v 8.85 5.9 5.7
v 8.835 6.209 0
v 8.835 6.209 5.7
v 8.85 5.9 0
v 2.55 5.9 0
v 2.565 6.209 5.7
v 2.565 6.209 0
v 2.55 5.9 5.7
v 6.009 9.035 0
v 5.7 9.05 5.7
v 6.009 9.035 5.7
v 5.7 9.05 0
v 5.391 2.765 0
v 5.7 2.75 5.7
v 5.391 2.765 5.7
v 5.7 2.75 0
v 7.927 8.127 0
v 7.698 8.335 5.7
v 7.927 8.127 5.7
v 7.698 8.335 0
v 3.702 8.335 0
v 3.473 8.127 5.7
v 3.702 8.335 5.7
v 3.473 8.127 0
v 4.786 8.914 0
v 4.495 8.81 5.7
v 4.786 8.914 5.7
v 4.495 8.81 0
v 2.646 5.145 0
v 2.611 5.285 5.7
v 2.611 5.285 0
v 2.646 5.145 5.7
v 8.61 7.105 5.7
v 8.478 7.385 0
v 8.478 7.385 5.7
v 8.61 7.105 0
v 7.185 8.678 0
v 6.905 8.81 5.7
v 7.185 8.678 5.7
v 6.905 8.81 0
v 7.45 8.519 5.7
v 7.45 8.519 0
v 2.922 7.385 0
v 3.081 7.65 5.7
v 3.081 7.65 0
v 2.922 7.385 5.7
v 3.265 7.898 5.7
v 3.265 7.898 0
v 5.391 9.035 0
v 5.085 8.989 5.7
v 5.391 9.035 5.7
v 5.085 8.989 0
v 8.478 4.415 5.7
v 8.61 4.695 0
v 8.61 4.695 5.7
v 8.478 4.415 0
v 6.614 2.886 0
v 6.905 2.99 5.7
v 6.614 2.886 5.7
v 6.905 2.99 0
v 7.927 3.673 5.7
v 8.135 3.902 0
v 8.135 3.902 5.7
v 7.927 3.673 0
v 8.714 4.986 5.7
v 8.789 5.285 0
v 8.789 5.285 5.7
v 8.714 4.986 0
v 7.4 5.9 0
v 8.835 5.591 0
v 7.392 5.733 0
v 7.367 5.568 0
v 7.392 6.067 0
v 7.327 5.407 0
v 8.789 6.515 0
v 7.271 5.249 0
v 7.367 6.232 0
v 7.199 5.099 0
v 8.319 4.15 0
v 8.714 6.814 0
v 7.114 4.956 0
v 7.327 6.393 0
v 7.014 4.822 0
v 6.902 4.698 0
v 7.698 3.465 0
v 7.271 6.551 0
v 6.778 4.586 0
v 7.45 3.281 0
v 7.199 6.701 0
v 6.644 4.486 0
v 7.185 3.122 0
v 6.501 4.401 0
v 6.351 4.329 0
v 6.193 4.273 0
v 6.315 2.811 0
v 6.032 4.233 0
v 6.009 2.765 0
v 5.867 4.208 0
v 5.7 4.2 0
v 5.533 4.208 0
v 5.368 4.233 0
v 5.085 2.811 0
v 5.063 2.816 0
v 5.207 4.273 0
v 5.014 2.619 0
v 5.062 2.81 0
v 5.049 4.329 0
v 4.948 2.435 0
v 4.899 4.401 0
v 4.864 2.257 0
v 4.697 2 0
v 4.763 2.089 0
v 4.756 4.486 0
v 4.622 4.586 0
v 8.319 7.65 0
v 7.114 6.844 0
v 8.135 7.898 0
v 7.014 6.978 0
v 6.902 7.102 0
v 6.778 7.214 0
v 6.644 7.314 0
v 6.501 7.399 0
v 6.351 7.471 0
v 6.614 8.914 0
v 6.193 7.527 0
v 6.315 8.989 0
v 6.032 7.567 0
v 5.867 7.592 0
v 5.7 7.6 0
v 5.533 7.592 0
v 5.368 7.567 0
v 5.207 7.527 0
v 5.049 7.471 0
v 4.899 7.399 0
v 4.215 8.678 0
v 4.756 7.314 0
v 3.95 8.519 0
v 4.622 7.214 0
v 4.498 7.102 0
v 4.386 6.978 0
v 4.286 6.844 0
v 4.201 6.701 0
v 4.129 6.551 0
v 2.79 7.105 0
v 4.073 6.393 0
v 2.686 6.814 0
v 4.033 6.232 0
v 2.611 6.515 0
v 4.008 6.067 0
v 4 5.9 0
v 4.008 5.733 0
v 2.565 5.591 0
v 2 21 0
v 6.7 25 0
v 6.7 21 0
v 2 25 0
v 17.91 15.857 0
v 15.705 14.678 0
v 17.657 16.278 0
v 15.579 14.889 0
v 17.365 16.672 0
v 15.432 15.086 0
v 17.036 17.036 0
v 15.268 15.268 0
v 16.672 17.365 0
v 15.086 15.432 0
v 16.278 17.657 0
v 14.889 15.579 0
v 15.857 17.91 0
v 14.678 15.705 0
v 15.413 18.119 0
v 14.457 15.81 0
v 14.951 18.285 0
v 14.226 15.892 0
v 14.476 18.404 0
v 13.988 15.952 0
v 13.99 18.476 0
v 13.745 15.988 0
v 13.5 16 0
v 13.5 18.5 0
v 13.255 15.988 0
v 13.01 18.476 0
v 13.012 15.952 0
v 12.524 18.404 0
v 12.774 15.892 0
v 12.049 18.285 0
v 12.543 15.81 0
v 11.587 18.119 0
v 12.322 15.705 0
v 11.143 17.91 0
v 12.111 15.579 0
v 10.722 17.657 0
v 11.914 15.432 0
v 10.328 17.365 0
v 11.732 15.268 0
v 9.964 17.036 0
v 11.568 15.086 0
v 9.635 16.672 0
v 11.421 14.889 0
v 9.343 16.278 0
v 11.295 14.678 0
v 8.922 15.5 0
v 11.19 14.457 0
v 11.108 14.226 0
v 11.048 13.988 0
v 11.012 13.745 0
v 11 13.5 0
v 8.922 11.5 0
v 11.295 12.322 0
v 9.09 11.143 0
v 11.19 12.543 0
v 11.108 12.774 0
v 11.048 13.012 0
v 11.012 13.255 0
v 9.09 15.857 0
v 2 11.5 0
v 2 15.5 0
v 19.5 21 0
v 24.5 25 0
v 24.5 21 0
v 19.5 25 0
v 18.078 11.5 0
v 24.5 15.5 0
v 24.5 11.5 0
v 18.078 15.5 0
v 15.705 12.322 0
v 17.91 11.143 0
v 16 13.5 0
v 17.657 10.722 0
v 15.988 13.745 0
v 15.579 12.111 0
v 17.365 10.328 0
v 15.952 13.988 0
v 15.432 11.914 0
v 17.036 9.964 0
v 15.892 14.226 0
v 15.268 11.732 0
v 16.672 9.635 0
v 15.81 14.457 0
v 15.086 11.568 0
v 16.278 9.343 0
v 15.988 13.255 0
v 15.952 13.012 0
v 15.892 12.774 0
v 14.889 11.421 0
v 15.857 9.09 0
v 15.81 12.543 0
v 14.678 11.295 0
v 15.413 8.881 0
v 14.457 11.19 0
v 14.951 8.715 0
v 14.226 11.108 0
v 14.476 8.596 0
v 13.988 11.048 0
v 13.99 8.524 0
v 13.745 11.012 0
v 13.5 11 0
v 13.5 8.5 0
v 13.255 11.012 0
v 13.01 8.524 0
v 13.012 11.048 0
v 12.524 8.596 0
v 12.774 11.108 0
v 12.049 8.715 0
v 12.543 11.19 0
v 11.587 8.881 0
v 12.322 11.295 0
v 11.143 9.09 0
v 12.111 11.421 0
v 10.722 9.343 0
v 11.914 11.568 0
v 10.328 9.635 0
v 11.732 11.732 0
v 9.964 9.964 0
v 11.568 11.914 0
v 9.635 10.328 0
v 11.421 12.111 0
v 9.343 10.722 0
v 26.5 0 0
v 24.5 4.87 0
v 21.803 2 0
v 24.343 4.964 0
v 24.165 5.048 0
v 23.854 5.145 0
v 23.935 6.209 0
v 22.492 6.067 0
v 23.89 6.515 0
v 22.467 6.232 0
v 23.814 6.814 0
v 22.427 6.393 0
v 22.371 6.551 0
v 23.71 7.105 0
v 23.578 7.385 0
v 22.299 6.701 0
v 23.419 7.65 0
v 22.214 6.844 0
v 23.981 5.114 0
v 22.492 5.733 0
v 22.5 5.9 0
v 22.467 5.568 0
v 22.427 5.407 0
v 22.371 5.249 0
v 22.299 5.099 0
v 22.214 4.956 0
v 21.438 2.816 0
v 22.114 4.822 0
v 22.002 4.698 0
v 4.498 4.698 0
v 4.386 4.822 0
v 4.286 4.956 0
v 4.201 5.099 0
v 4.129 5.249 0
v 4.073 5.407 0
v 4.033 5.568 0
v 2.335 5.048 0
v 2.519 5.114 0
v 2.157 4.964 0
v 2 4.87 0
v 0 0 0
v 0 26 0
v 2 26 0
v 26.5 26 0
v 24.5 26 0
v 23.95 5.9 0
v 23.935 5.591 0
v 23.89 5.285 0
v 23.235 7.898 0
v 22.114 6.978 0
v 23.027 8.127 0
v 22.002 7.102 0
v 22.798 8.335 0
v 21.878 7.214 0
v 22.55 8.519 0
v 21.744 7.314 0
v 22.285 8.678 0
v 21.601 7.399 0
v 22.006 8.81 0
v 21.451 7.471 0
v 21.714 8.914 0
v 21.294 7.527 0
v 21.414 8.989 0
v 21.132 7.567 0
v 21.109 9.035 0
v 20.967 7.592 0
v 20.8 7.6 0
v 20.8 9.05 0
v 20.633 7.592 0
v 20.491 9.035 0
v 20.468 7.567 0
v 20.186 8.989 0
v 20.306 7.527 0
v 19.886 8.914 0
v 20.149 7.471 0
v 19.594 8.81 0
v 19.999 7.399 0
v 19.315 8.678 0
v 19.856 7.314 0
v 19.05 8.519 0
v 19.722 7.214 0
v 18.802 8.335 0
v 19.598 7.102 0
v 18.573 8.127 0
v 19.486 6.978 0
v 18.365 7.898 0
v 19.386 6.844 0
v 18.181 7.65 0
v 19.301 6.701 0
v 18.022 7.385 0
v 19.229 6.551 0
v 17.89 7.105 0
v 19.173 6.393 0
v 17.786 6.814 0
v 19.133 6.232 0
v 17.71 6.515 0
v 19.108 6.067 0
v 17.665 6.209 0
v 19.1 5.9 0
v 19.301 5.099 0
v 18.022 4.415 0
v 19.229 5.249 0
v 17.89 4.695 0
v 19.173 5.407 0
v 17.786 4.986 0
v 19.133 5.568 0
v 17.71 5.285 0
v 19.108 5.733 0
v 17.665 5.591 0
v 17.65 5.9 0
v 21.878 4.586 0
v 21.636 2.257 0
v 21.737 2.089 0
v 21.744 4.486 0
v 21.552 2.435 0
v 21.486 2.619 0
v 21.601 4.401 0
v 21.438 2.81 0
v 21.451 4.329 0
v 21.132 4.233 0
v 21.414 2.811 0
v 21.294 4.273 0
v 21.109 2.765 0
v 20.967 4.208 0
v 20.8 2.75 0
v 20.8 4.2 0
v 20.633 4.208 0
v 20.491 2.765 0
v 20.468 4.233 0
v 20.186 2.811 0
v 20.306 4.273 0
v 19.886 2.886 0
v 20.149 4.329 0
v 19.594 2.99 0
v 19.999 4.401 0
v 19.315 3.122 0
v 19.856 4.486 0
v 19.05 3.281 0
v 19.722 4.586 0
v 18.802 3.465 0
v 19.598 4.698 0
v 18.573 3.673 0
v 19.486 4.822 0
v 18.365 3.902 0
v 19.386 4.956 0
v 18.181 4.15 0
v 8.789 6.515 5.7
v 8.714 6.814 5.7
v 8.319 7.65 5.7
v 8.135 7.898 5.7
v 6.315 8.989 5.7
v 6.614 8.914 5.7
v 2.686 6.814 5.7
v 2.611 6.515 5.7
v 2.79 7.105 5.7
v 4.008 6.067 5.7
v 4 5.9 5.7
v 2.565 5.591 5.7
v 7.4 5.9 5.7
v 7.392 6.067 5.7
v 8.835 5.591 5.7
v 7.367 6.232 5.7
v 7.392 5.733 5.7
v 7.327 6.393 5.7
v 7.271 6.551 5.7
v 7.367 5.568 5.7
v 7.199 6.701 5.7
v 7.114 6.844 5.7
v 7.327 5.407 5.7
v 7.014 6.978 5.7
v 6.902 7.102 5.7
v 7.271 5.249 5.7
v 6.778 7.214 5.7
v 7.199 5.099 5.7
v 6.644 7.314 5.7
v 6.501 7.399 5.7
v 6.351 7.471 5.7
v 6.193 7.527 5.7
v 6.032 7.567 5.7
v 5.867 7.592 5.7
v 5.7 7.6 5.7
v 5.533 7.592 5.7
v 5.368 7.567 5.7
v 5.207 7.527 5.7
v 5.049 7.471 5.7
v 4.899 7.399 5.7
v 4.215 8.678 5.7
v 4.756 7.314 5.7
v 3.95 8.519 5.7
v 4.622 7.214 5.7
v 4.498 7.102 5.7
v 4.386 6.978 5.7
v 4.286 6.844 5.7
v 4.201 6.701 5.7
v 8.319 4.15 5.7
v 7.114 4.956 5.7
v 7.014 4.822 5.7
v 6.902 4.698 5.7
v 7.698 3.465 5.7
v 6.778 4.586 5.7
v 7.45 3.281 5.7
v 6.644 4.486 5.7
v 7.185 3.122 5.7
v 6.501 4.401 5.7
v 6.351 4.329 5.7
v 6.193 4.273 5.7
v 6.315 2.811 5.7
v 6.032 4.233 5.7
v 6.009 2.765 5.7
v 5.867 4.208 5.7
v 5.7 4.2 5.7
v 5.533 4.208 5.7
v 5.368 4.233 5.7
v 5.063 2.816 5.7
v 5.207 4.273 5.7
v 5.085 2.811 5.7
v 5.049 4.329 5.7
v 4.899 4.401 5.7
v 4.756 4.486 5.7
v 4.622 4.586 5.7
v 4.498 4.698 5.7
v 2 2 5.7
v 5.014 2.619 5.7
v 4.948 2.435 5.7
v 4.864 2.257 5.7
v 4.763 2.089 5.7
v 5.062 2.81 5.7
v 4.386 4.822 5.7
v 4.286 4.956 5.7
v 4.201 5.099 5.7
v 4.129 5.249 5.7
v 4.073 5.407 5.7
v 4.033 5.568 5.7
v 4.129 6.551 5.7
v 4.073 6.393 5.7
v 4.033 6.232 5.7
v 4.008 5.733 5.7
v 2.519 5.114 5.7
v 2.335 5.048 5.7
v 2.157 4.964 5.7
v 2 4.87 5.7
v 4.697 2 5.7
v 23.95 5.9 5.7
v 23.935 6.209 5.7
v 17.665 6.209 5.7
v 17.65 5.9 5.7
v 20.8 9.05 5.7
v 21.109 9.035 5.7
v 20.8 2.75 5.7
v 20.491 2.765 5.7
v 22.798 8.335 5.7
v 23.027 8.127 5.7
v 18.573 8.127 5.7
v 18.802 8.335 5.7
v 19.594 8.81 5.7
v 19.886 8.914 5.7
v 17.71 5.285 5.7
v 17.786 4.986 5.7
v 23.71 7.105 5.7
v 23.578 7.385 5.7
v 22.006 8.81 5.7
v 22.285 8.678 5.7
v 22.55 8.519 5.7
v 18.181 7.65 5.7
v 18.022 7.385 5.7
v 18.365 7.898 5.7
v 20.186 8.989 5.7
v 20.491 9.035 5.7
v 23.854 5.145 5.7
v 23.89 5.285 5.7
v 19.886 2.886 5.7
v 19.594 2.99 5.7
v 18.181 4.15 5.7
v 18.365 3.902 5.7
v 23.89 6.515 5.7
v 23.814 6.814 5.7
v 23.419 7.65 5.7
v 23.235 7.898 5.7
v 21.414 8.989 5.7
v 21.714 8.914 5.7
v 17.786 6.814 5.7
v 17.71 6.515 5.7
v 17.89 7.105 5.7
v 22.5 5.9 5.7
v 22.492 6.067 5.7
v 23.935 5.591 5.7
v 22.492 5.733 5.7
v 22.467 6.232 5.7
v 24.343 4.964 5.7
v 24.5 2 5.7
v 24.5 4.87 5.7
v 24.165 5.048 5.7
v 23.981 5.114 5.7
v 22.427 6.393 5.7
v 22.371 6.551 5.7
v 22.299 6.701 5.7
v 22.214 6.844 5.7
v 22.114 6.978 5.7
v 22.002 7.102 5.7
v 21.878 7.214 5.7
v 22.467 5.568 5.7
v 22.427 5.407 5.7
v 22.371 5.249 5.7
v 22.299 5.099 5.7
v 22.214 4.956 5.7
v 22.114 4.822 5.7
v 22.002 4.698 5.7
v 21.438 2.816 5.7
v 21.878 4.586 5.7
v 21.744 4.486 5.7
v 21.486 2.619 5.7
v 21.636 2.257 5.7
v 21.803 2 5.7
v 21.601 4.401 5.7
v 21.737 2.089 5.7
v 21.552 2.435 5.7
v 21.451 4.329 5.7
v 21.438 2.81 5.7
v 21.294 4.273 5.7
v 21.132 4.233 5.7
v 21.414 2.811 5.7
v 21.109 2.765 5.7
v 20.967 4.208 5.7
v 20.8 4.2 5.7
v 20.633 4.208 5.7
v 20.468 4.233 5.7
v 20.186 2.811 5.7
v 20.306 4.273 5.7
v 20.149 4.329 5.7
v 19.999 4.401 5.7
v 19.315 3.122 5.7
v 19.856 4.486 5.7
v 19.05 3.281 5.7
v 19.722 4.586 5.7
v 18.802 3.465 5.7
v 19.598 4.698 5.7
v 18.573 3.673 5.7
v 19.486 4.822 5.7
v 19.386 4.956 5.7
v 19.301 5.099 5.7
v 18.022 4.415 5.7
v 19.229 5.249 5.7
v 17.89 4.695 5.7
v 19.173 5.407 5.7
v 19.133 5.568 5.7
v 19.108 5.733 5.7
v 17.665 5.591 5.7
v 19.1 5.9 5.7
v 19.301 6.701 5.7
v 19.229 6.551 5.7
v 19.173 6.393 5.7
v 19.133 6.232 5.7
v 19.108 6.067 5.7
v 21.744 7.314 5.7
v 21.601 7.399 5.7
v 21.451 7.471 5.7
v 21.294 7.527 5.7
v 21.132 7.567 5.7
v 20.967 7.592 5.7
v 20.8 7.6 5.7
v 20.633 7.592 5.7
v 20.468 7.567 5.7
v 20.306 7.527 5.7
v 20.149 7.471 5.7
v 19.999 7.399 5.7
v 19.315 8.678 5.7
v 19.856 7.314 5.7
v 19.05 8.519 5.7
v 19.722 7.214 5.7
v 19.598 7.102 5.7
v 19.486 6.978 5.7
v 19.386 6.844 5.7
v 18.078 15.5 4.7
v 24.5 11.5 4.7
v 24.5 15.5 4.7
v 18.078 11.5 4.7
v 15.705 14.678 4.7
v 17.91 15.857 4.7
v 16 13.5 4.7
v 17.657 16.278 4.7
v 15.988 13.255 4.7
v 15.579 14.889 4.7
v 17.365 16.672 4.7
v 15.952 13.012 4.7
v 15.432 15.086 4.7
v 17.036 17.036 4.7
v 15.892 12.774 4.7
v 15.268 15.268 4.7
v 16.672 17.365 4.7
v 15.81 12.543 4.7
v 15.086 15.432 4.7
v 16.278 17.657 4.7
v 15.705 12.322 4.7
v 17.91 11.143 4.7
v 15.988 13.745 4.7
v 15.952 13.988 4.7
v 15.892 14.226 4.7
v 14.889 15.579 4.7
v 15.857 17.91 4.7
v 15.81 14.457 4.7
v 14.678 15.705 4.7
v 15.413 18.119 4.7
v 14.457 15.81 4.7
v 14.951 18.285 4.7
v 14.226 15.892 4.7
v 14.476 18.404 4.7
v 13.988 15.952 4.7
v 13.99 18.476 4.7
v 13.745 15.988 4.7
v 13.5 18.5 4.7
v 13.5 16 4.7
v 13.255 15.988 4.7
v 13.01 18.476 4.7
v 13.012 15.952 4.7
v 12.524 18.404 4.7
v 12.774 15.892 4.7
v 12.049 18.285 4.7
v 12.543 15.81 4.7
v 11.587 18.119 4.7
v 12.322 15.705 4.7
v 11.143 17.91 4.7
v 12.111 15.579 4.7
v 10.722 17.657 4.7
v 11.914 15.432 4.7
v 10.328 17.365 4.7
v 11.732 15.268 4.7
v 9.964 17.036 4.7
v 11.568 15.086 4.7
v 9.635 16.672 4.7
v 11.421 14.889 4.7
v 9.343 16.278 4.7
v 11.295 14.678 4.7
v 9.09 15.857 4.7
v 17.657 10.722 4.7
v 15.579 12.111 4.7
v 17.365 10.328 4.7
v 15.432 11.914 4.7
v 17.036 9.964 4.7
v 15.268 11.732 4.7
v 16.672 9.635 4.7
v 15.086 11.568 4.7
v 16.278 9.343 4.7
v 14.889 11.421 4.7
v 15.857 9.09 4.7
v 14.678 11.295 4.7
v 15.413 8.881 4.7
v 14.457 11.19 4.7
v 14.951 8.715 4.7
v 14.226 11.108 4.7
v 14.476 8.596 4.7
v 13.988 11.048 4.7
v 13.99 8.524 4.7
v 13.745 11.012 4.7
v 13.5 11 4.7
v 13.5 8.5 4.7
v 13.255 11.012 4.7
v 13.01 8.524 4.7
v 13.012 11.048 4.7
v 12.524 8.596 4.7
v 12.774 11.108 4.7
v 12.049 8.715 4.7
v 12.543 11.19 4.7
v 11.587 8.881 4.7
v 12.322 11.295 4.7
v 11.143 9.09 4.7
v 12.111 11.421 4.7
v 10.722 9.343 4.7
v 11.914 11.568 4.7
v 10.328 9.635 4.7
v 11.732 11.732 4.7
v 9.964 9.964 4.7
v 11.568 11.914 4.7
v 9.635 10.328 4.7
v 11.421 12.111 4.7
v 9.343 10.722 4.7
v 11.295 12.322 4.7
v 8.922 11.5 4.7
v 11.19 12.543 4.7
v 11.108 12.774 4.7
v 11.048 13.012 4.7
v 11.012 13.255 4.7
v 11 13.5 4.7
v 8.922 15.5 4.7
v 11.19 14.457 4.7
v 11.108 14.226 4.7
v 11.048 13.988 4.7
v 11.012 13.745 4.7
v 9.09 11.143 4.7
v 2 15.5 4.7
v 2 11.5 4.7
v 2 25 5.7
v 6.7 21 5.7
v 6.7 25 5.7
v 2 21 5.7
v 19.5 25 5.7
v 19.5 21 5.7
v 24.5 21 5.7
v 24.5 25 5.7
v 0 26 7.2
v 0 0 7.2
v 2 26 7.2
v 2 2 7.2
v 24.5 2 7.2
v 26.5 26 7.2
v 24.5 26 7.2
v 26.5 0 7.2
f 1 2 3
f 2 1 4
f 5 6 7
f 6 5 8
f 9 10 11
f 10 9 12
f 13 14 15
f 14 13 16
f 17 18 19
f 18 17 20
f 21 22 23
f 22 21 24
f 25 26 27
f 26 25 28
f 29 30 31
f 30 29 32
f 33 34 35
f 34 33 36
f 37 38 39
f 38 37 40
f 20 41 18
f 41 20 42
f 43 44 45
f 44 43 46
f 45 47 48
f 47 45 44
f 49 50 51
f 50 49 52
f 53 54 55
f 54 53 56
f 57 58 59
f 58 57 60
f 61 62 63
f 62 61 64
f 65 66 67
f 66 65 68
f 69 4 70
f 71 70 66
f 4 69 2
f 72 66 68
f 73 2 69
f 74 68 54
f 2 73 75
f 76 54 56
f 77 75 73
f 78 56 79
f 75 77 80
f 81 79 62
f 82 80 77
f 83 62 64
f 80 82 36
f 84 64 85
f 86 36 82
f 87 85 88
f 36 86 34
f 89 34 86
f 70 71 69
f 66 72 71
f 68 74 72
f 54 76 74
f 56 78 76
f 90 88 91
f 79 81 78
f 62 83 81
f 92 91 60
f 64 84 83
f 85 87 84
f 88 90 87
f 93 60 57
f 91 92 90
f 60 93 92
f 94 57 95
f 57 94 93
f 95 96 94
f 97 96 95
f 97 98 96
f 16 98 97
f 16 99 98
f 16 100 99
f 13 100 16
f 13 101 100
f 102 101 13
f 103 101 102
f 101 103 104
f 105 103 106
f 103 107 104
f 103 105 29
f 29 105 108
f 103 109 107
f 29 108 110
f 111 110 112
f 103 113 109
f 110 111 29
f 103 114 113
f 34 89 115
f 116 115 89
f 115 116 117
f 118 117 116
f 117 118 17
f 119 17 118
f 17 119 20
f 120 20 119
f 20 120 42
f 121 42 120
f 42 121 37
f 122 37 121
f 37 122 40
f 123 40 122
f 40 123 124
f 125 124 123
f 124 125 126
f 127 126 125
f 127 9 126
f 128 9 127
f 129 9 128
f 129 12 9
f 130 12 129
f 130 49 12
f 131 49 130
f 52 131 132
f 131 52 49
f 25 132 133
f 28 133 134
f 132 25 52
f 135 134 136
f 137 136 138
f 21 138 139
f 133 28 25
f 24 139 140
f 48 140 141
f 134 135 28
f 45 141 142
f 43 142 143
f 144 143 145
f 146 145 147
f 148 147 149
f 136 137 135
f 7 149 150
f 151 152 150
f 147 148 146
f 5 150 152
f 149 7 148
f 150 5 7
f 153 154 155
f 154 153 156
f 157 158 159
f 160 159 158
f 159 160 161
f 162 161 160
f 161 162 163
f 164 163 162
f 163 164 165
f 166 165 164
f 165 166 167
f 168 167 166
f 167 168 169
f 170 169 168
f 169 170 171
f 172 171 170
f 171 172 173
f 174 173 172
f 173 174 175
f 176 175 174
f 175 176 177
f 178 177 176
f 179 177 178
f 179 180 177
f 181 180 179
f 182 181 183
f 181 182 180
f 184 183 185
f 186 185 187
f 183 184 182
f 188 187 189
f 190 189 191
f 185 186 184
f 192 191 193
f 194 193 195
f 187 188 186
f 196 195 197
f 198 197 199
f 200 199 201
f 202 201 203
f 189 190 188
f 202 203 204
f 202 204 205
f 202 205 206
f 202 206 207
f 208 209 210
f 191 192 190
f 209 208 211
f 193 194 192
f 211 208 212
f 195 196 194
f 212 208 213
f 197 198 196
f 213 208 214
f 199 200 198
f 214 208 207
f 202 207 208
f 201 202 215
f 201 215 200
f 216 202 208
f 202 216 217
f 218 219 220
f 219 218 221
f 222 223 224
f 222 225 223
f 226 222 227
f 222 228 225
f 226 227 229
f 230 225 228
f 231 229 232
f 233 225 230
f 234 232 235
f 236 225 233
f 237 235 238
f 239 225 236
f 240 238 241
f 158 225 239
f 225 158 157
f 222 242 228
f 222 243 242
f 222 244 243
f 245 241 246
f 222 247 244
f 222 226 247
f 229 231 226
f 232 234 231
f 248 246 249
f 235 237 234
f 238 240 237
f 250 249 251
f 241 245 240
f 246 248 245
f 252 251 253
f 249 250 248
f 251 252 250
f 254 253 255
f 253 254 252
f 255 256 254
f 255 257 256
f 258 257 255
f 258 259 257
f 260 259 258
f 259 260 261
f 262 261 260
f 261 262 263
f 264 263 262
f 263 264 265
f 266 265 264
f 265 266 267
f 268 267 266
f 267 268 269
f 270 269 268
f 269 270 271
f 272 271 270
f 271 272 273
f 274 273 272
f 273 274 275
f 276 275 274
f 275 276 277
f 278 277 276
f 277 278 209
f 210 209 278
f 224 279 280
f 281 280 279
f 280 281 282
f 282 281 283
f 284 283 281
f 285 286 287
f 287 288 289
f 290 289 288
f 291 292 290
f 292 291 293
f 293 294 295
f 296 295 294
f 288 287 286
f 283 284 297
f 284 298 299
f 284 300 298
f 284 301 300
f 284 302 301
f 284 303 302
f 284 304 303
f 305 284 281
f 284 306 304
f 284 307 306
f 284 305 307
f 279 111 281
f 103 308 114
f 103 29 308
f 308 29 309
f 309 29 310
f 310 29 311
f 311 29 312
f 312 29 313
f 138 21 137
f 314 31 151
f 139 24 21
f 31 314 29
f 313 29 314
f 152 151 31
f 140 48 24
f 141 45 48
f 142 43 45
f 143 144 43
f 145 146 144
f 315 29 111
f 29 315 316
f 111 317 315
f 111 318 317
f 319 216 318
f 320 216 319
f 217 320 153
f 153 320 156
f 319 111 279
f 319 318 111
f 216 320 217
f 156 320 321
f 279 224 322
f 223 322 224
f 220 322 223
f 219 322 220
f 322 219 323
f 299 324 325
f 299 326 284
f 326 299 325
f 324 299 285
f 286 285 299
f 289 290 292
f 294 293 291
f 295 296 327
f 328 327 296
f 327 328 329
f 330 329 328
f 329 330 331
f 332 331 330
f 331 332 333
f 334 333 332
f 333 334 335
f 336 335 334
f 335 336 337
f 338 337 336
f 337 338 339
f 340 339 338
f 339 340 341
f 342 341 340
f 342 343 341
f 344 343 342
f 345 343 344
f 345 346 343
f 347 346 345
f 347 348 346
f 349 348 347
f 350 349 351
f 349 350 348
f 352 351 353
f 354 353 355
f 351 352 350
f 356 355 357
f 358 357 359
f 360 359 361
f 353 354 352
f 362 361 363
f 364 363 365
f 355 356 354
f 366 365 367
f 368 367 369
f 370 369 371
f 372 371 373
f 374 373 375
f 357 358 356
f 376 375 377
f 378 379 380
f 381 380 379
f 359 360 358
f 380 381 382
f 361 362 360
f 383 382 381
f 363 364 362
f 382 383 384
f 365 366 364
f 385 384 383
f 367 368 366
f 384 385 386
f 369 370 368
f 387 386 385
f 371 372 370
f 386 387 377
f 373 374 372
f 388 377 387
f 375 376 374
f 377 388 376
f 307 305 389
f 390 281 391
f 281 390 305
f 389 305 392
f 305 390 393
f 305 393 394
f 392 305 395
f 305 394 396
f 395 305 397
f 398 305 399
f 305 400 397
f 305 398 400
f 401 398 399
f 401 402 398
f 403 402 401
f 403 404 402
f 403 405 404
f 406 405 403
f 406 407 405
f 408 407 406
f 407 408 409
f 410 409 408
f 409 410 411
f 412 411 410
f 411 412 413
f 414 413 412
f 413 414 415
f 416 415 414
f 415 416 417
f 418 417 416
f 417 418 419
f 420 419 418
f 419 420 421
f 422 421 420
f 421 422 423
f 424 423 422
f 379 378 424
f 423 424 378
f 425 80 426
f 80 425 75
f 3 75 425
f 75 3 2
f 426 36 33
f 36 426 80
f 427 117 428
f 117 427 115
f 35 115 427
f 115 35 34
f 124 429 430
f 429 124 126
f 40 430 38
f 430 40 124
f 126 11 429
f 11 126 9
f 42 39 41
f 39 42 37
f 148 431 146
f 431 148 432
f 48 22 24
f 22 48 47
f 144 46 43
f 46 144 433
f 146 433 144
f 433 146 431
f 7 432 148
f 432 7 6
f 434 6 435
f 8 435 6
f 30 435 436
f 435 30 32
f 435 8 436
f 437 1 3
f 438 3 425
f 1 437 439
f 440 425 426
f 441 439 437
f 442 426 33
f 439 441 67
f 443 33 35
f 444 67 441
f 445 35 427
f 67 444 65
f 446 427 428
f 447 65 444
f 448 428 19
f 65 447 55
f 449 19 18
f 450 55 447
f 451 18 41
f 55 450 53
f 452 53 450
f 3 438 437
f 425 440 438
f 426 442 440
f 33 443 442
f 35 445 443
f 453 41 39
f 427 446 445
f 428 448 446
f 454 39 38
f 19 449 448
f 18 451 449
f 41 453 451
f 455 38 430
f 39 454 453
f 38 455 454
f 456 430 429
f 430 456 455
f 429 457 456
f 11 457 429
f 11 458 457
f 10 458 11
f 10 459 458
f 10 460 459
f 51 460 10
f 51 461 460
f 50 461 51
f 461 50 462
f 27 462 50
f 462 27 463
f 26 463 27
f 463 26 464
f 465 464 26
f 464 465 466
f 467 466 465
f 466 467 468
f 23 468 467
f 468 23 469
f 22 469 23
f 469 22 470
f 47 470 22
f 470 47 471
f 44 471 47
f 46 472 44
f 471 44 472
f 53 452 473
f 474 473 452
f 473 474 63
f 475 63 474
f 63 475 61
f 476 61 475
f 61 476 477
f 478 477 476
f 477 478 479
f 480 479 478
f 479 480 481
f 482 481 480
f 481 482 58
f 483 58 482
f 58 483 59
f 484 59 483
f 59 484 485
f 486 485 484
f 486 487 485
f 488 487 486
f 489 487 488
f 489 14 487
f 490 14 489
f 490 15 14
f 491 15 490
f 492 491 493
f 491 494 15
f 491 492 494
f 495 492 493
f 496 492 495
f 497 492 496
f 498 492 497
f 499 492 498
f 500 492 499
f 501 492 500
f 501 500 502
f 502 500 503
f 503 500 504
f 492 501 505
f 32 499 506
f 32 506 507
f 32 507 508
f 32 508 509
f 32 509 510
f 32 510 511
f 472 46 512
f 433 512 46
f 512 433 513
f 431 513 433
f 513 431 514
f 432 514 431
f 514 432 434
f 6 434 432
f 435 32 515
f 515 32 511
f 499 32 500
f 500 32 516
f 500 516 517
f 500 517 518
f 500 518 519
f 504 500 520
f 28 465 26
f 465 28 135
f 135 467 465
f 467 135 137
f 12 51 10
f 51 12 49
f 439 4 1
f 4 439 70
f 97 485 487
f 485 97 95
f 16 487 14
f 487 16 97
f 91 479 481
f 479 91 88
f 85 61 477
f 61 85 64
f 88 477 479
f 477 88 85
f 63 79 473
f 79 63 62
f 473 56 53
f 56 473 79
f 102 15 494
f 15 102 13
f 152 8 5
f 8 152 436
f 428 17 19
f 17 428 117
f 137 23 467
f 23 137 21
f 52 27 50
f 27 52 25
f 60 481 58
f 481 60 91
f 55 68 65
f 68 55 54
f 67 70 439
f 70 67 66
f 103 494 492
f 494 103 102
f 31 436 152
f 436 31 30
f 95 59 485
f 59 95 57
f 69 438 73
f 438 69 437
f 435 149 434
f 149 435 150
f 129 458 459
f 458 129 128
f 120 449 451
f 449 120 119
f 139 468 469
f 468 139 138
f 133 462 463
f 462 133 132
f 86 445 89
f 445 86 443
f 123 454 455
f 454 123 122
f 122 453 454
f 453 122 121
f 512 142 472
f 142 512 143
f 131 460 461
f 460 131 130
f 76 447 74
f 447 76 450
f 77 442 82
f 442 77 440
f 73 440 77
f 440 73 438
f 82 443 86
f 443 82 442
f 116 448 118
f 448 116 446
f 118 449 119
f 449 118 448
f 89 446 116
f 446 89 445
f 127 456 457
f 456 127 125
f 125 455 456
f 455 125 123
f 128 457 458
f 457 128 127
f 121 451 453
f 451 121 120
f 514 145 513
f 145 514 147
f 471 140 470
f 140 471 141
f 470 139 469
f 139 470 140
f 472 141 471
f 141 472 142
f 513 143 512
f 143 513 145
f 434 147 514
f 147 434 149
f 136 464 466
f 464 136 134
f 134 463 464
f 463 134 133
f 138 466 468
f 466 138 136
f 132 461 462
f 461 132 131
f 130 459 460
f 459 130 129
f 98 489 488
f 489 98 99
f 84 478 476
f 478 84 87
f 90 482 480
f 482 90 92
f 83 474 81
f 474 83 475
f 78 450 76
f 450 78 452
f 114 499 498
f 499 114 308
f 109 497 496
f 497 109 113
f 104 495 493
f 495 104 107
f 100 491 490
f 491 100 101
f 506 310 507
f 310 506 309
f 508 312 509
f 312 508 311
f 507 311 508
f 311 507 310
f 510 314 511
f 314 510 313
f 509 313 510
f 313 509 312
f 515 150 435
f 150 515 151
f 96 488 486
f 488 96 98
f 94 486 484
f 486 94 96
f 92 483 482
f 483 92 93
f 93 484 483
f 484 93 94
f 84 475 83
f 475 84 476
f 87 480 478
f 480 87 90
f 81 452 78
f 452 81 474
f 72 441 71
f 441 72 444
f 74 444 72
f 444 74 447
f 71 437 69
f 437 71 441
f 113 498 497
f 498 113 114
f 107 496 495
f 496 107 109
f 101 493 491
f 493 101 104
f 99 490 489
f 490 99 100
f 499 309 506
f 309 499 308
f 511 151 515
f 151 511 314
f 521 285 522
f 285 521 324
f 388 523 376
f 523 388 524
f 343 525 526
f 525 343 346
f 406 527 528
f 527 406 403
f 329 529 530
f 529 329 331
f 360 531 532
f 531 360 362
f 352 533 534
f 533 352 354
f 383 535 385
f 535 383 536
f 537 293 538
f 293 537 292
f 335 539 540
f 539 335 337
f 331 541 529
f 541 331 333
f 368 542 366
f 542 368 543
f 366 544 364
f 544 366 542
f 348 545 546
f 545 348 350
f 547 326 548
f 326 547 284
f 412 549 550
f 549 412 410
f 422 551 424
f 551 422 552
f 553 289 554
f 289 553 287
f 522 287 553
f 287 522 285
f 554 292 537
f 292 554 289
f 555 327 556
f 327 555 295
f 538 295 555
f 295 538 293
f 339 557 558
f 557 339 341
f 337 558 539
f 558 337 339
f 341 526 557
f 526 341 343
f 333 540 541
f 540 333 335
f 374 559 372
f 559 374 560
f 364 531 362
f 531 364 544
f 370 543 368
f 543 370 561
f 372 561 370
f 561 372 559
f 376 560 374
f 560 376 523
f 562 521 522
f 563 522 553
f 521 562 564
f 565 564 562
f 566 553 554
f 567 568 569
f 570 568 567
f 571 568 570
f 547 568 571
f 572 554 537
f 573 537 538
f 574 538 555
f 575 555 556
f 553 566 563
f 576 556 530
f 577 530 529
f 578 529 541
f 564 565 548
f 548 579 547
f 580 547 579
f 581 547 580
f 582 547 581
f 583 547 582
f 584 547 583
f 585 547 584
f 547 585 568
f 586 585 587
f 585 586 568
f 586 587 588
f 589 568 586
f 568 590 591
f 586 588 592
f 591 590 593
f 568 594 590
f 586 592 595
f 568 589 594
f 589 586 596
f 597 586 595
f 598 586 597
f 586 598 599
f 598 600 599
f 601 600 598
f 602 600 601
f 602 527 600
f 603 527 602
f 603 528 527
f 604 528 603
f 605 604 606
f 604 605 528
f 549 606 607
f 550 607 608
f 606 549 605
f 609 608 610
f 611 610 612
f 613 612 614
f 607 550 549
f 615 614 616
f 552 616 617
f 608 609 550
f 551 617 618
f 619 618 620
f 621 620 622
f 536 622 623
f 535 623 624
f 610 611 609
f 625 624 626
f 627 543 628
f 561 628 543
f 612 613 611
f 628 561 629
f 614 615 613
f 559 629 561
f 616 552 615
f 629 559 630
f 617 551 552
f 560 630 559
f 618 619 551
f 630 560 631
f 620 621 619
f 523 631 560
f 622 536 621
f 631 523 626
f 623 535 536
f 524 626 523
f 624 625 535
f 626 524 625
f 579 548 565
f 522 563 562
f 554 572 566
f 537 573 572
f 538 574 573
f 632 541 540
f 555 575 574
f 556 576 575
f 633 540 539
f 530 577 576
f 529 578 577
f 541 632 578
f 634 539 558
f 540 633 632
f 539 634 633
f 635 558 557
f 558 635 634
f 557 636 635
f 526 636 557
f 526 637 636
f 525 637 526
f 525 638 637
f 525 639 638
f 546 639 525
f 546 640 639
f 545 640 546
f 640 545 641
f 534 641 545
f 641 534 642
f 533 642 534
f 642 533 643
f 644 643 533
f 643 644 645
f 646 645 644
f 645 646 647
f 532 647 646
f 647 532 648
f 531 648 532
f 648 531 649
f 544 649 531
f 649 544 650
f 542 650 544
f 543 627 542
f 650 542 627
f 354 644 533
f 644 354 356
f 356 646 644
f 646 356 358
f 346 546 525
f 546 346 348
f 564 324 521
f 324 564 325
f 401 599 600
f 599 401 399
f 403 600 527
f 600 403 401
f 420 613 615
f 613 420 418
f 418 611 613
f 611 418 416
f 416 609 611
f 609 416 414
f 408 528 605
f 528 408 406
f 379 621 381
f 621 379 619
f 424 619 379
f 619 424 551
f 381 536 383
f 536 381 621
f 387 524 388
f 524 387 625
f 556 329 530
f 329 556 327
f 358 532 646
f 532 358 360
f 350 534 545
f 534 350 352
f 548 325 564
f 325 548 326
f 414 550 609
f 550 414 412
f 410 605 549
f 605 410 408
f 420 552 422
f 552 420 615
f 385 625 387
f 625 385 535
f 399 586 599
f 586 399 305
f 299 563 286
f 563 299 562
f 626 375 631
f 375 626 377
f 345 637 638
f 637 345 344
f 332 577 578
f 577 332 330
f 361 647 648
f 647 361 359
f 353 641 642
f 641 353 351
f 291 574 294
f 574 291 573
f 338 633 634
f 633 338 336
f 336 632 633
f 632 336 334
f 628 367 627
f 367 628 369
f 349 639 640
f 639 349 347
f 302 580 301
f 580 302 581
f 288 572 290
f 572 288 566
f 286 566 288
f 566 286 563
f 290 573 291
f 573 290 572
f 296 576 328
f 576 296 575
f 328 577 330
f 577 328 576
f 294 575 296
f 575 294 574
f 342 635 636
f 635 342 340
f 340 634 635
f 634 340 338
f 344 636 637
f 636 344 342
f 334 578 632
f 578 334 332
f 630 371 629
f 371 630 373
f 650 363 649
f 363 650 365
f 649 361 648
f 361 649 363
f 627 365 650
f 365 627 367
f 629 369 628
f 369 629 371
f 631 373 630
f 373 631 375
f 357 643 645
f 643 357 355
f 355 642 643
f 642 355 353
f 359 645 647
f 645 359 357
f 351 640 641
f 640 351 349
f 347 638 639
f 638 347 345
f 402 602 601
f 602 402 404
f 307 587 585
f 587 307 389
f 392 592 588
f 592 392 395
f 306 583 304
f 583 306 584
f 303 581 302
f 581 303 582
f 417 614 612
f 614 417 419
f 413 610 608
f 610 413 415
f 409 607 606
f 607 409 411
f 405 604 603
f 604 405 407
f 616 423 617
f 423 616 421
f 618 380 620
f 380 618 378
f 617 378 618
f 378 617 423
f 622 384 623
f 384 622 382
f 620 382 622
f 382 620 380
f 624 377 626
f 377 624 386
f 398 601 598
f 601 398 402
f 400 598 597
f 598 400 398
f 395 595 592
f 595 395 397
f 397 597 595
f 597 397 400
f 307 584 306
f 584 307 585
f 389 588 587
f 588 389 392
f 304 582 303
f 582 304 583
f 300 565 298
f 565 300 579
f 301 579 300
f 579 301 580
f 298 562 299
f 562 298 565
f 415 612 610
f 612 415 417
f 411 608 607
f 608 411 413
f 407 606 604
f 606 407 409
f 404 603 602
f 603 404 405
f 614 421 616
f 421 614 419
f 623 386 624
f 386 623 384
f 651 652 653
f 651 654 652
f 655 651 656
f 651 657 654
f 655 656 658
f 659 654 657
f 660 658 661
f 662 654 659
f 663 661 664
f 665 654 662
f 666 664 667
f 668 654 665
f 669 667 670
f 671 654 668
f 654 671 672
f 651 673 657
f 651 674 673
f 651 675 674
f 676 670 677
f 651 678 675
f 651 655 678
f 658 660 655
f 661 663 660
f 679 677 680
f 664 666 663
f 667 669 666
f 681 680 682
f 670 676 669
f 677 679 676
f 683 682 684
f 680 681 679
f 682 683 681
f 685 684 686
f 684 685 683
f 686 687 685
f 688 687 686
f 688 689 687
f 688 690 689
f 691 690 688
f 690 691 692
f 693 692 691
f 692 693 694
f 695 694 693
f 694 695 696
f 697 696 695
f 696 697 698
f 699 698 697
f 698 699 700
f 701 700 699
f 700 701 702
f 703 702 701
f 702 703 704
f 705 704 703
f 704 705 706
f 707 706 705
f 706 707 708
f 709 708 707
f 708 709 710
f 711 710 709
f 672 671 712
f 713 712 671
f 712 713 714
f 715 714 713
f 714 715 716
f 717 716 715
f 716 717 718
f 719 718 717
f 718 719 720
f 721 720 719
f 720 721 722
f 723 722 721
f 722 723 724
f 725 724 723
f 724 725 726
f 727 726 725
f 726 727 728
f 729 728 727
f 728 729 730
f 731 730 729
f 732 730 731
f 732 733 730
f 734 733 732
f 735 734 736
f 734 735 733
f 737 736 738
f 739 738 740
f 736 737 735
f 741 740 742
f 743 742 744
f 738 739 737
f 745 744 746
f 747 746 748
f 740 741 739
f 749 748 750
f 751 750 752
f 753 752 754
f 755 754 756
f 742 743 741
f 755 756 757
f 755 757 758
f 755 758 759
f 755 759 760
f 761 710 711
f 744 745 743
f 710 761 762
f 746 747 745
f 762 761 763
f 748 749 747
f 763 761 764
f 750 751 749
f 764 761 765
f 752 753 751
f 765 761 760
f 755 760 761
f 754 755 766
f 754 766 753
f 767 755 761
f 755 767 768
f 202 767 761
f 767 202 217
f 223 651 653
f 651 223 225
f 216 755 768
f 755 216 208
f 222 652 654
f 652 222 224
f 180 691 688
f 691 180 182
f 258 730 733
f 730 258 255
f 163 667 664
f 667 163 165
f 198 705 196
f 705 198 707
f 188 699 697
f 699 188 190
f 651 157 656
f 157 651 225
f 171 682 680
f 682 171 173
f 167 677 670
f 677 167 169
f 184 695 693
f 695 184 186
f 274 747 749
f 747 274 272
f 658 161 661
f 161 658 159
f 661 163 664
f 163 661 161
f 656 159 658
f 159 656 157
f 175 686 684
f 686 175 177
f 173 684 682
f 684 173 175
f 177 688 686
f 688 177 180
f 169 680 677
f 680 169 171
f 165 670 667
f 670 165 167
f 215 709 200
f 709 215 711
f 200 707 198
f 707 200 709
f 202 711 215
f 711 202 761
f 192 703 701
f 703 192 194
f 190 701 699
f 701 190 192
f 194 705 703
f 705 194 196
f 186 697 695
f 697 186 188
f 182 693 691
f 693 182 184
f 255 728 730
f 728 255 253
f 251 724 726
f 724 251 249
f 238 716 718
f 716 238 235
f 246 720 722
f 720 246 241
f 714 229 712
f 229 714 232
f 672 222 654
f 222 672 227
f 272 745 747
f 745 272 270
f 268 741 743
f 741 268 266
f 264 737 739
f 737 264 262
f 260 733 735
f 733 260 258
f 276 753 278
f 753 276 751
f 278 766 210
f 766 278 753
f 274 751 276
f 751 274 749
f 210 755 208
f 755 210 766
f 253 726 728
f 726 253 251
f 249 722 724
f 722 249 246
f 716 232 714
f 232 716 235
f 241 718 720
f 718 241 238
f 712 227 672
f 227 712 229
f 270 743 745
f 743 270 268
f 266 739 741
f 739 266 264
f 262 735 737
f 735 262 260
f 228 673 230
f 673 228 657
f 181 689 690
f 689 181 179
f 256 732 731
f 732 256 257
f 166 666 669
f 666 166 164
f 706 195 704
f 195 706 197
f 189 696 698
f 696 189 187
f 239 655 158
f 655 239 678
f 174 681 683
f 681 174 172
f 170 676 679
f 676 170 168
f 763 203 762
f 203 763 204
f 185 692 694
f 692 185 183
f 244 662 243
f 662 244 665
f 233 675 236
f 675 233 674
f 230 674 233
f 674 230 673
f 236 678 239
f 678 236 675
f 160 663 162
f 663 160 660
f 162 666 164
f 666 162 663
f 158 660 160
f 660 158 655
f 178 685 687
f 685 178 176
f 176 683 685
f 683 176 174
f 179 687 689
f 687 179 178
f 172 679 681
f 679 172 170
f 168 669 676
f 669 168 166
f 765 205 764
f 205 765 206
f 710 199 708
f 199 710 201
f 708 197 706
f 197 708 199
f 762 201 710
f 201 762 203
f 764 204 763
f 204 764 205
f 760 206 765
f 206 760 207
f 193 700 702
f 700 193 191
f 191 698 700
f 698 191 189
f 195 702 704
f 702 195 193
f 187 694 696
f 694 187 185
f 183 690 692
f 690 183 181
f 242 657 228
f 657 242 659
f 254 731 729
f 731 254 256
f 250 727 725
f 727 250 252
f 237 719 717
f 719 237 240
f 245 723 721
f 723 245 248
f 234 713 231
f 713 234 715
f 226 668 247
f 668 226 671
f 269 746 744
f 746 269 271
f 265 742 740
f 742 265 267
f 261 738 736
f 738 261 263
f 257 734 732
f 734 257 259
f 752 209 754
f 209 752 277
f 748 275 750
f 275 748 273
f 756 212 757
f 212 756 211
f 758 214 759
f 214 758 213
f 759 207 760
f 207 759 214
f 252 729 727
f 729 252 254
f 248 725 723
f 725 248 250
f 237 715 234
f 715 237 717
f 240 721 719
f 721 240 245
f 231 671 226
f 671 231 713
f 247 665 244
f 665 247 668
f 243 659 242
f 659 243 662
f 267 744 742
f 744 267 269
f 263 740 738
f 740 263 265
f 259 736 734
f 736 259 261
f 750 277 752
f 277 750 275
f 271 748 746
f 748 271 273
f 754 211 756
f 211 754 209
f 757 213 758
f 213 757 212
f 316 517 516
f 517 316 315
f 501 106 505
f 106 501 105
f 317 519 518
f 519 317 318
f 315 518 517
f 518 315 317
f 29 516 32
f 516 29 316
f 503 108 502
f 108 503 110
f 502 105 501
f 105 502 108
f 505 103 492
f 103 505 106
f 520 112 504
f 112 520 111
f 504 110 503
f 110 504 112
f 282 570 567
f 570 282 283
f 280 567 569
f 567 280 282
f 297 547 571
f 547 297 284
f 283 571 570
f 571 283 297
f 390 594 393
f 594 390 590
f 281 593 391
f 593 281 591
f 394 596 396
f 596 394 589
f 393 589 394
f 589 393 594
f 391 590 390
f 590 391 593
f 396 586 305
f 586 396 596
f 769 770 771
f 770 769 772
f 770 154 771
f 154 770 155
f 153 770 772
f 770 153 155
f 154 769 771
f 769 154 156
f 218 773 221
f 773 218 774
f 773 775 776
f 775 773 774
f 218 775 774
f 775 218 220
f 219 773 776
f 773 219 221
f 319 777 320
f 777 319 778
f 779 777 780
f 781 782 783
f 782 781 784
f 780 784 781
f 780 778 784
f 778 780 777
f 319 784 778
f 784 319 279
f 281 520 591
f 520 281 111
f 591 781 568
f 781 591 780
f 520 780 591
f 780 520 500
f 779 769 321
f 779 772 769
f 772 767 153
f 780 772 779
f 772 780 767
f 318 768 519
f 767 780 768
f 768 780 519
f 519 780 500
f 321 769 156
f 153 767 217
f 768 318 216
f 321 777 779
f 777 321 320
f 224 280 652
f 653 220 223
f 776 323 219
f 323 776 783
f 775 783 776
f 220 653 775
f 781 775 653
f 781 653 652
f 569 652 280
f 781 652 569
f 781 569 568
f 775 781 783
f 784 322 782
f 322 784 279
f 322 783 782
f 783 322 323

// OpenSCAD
$fn=64;

sHeight=7.2;
zOffset=0;

module screwMount(){
  difference(){
      cylinder(h = sHeight-1.5,
           d = 6.3  ,
           center = false);
      cylinder(h = sHeight,
           d = 3.4,
           center = false);
  } 
}

module spacer(){
    cube([5.5, 4, sHeight-1.5], false);  
}

module screwMountFill(){
    cylinder(h = sHeight-1.5,
           d = 4,
           center = false);
}


module main(){
  union(){

   //screw mounts
   translate([5.7, 5.9, zOffset])
     screwMount();
   translate([20.8, 5.9, zOffset])
     screwMount();

    //sensor channel
    difference(){
     union(){
       translate([1.2, 11.5, zOffset])
         cube([24,4,sHeight-2.5],false);
       translate([13.5, 13.5, zOffset])
         cylinder(h = sHeight-2.5,
           d = 10  ,
           center = false);
      }
      translate([13.5, 13.5, zOffset])
        cylinder(h = sHeight-1.3,
           d = 5,
           center = false);
    } 


   //screw mounts connections
   translate([3.1, 3.2, zOffset])
    screwMountFill();
   translate([23.4, 3.2, zOffset])
    screwMountFill();
    
   //back spacers
   translate([1.2, 21, zOffset])
    spacer();
   translate([19.5, 21, zOffset])
    spacer();
    
   //front wall
   translate([0, 0, zOffset])
    cube([26,2,sHeight],false);

   //side walls
   translate([0, 0, zOffset])
    cube([2, 26, sHeight],false);    
   translate([24.5, 0, zOffset])
    cube([2, 26, sHeight],false); 
  }  
}


main();
